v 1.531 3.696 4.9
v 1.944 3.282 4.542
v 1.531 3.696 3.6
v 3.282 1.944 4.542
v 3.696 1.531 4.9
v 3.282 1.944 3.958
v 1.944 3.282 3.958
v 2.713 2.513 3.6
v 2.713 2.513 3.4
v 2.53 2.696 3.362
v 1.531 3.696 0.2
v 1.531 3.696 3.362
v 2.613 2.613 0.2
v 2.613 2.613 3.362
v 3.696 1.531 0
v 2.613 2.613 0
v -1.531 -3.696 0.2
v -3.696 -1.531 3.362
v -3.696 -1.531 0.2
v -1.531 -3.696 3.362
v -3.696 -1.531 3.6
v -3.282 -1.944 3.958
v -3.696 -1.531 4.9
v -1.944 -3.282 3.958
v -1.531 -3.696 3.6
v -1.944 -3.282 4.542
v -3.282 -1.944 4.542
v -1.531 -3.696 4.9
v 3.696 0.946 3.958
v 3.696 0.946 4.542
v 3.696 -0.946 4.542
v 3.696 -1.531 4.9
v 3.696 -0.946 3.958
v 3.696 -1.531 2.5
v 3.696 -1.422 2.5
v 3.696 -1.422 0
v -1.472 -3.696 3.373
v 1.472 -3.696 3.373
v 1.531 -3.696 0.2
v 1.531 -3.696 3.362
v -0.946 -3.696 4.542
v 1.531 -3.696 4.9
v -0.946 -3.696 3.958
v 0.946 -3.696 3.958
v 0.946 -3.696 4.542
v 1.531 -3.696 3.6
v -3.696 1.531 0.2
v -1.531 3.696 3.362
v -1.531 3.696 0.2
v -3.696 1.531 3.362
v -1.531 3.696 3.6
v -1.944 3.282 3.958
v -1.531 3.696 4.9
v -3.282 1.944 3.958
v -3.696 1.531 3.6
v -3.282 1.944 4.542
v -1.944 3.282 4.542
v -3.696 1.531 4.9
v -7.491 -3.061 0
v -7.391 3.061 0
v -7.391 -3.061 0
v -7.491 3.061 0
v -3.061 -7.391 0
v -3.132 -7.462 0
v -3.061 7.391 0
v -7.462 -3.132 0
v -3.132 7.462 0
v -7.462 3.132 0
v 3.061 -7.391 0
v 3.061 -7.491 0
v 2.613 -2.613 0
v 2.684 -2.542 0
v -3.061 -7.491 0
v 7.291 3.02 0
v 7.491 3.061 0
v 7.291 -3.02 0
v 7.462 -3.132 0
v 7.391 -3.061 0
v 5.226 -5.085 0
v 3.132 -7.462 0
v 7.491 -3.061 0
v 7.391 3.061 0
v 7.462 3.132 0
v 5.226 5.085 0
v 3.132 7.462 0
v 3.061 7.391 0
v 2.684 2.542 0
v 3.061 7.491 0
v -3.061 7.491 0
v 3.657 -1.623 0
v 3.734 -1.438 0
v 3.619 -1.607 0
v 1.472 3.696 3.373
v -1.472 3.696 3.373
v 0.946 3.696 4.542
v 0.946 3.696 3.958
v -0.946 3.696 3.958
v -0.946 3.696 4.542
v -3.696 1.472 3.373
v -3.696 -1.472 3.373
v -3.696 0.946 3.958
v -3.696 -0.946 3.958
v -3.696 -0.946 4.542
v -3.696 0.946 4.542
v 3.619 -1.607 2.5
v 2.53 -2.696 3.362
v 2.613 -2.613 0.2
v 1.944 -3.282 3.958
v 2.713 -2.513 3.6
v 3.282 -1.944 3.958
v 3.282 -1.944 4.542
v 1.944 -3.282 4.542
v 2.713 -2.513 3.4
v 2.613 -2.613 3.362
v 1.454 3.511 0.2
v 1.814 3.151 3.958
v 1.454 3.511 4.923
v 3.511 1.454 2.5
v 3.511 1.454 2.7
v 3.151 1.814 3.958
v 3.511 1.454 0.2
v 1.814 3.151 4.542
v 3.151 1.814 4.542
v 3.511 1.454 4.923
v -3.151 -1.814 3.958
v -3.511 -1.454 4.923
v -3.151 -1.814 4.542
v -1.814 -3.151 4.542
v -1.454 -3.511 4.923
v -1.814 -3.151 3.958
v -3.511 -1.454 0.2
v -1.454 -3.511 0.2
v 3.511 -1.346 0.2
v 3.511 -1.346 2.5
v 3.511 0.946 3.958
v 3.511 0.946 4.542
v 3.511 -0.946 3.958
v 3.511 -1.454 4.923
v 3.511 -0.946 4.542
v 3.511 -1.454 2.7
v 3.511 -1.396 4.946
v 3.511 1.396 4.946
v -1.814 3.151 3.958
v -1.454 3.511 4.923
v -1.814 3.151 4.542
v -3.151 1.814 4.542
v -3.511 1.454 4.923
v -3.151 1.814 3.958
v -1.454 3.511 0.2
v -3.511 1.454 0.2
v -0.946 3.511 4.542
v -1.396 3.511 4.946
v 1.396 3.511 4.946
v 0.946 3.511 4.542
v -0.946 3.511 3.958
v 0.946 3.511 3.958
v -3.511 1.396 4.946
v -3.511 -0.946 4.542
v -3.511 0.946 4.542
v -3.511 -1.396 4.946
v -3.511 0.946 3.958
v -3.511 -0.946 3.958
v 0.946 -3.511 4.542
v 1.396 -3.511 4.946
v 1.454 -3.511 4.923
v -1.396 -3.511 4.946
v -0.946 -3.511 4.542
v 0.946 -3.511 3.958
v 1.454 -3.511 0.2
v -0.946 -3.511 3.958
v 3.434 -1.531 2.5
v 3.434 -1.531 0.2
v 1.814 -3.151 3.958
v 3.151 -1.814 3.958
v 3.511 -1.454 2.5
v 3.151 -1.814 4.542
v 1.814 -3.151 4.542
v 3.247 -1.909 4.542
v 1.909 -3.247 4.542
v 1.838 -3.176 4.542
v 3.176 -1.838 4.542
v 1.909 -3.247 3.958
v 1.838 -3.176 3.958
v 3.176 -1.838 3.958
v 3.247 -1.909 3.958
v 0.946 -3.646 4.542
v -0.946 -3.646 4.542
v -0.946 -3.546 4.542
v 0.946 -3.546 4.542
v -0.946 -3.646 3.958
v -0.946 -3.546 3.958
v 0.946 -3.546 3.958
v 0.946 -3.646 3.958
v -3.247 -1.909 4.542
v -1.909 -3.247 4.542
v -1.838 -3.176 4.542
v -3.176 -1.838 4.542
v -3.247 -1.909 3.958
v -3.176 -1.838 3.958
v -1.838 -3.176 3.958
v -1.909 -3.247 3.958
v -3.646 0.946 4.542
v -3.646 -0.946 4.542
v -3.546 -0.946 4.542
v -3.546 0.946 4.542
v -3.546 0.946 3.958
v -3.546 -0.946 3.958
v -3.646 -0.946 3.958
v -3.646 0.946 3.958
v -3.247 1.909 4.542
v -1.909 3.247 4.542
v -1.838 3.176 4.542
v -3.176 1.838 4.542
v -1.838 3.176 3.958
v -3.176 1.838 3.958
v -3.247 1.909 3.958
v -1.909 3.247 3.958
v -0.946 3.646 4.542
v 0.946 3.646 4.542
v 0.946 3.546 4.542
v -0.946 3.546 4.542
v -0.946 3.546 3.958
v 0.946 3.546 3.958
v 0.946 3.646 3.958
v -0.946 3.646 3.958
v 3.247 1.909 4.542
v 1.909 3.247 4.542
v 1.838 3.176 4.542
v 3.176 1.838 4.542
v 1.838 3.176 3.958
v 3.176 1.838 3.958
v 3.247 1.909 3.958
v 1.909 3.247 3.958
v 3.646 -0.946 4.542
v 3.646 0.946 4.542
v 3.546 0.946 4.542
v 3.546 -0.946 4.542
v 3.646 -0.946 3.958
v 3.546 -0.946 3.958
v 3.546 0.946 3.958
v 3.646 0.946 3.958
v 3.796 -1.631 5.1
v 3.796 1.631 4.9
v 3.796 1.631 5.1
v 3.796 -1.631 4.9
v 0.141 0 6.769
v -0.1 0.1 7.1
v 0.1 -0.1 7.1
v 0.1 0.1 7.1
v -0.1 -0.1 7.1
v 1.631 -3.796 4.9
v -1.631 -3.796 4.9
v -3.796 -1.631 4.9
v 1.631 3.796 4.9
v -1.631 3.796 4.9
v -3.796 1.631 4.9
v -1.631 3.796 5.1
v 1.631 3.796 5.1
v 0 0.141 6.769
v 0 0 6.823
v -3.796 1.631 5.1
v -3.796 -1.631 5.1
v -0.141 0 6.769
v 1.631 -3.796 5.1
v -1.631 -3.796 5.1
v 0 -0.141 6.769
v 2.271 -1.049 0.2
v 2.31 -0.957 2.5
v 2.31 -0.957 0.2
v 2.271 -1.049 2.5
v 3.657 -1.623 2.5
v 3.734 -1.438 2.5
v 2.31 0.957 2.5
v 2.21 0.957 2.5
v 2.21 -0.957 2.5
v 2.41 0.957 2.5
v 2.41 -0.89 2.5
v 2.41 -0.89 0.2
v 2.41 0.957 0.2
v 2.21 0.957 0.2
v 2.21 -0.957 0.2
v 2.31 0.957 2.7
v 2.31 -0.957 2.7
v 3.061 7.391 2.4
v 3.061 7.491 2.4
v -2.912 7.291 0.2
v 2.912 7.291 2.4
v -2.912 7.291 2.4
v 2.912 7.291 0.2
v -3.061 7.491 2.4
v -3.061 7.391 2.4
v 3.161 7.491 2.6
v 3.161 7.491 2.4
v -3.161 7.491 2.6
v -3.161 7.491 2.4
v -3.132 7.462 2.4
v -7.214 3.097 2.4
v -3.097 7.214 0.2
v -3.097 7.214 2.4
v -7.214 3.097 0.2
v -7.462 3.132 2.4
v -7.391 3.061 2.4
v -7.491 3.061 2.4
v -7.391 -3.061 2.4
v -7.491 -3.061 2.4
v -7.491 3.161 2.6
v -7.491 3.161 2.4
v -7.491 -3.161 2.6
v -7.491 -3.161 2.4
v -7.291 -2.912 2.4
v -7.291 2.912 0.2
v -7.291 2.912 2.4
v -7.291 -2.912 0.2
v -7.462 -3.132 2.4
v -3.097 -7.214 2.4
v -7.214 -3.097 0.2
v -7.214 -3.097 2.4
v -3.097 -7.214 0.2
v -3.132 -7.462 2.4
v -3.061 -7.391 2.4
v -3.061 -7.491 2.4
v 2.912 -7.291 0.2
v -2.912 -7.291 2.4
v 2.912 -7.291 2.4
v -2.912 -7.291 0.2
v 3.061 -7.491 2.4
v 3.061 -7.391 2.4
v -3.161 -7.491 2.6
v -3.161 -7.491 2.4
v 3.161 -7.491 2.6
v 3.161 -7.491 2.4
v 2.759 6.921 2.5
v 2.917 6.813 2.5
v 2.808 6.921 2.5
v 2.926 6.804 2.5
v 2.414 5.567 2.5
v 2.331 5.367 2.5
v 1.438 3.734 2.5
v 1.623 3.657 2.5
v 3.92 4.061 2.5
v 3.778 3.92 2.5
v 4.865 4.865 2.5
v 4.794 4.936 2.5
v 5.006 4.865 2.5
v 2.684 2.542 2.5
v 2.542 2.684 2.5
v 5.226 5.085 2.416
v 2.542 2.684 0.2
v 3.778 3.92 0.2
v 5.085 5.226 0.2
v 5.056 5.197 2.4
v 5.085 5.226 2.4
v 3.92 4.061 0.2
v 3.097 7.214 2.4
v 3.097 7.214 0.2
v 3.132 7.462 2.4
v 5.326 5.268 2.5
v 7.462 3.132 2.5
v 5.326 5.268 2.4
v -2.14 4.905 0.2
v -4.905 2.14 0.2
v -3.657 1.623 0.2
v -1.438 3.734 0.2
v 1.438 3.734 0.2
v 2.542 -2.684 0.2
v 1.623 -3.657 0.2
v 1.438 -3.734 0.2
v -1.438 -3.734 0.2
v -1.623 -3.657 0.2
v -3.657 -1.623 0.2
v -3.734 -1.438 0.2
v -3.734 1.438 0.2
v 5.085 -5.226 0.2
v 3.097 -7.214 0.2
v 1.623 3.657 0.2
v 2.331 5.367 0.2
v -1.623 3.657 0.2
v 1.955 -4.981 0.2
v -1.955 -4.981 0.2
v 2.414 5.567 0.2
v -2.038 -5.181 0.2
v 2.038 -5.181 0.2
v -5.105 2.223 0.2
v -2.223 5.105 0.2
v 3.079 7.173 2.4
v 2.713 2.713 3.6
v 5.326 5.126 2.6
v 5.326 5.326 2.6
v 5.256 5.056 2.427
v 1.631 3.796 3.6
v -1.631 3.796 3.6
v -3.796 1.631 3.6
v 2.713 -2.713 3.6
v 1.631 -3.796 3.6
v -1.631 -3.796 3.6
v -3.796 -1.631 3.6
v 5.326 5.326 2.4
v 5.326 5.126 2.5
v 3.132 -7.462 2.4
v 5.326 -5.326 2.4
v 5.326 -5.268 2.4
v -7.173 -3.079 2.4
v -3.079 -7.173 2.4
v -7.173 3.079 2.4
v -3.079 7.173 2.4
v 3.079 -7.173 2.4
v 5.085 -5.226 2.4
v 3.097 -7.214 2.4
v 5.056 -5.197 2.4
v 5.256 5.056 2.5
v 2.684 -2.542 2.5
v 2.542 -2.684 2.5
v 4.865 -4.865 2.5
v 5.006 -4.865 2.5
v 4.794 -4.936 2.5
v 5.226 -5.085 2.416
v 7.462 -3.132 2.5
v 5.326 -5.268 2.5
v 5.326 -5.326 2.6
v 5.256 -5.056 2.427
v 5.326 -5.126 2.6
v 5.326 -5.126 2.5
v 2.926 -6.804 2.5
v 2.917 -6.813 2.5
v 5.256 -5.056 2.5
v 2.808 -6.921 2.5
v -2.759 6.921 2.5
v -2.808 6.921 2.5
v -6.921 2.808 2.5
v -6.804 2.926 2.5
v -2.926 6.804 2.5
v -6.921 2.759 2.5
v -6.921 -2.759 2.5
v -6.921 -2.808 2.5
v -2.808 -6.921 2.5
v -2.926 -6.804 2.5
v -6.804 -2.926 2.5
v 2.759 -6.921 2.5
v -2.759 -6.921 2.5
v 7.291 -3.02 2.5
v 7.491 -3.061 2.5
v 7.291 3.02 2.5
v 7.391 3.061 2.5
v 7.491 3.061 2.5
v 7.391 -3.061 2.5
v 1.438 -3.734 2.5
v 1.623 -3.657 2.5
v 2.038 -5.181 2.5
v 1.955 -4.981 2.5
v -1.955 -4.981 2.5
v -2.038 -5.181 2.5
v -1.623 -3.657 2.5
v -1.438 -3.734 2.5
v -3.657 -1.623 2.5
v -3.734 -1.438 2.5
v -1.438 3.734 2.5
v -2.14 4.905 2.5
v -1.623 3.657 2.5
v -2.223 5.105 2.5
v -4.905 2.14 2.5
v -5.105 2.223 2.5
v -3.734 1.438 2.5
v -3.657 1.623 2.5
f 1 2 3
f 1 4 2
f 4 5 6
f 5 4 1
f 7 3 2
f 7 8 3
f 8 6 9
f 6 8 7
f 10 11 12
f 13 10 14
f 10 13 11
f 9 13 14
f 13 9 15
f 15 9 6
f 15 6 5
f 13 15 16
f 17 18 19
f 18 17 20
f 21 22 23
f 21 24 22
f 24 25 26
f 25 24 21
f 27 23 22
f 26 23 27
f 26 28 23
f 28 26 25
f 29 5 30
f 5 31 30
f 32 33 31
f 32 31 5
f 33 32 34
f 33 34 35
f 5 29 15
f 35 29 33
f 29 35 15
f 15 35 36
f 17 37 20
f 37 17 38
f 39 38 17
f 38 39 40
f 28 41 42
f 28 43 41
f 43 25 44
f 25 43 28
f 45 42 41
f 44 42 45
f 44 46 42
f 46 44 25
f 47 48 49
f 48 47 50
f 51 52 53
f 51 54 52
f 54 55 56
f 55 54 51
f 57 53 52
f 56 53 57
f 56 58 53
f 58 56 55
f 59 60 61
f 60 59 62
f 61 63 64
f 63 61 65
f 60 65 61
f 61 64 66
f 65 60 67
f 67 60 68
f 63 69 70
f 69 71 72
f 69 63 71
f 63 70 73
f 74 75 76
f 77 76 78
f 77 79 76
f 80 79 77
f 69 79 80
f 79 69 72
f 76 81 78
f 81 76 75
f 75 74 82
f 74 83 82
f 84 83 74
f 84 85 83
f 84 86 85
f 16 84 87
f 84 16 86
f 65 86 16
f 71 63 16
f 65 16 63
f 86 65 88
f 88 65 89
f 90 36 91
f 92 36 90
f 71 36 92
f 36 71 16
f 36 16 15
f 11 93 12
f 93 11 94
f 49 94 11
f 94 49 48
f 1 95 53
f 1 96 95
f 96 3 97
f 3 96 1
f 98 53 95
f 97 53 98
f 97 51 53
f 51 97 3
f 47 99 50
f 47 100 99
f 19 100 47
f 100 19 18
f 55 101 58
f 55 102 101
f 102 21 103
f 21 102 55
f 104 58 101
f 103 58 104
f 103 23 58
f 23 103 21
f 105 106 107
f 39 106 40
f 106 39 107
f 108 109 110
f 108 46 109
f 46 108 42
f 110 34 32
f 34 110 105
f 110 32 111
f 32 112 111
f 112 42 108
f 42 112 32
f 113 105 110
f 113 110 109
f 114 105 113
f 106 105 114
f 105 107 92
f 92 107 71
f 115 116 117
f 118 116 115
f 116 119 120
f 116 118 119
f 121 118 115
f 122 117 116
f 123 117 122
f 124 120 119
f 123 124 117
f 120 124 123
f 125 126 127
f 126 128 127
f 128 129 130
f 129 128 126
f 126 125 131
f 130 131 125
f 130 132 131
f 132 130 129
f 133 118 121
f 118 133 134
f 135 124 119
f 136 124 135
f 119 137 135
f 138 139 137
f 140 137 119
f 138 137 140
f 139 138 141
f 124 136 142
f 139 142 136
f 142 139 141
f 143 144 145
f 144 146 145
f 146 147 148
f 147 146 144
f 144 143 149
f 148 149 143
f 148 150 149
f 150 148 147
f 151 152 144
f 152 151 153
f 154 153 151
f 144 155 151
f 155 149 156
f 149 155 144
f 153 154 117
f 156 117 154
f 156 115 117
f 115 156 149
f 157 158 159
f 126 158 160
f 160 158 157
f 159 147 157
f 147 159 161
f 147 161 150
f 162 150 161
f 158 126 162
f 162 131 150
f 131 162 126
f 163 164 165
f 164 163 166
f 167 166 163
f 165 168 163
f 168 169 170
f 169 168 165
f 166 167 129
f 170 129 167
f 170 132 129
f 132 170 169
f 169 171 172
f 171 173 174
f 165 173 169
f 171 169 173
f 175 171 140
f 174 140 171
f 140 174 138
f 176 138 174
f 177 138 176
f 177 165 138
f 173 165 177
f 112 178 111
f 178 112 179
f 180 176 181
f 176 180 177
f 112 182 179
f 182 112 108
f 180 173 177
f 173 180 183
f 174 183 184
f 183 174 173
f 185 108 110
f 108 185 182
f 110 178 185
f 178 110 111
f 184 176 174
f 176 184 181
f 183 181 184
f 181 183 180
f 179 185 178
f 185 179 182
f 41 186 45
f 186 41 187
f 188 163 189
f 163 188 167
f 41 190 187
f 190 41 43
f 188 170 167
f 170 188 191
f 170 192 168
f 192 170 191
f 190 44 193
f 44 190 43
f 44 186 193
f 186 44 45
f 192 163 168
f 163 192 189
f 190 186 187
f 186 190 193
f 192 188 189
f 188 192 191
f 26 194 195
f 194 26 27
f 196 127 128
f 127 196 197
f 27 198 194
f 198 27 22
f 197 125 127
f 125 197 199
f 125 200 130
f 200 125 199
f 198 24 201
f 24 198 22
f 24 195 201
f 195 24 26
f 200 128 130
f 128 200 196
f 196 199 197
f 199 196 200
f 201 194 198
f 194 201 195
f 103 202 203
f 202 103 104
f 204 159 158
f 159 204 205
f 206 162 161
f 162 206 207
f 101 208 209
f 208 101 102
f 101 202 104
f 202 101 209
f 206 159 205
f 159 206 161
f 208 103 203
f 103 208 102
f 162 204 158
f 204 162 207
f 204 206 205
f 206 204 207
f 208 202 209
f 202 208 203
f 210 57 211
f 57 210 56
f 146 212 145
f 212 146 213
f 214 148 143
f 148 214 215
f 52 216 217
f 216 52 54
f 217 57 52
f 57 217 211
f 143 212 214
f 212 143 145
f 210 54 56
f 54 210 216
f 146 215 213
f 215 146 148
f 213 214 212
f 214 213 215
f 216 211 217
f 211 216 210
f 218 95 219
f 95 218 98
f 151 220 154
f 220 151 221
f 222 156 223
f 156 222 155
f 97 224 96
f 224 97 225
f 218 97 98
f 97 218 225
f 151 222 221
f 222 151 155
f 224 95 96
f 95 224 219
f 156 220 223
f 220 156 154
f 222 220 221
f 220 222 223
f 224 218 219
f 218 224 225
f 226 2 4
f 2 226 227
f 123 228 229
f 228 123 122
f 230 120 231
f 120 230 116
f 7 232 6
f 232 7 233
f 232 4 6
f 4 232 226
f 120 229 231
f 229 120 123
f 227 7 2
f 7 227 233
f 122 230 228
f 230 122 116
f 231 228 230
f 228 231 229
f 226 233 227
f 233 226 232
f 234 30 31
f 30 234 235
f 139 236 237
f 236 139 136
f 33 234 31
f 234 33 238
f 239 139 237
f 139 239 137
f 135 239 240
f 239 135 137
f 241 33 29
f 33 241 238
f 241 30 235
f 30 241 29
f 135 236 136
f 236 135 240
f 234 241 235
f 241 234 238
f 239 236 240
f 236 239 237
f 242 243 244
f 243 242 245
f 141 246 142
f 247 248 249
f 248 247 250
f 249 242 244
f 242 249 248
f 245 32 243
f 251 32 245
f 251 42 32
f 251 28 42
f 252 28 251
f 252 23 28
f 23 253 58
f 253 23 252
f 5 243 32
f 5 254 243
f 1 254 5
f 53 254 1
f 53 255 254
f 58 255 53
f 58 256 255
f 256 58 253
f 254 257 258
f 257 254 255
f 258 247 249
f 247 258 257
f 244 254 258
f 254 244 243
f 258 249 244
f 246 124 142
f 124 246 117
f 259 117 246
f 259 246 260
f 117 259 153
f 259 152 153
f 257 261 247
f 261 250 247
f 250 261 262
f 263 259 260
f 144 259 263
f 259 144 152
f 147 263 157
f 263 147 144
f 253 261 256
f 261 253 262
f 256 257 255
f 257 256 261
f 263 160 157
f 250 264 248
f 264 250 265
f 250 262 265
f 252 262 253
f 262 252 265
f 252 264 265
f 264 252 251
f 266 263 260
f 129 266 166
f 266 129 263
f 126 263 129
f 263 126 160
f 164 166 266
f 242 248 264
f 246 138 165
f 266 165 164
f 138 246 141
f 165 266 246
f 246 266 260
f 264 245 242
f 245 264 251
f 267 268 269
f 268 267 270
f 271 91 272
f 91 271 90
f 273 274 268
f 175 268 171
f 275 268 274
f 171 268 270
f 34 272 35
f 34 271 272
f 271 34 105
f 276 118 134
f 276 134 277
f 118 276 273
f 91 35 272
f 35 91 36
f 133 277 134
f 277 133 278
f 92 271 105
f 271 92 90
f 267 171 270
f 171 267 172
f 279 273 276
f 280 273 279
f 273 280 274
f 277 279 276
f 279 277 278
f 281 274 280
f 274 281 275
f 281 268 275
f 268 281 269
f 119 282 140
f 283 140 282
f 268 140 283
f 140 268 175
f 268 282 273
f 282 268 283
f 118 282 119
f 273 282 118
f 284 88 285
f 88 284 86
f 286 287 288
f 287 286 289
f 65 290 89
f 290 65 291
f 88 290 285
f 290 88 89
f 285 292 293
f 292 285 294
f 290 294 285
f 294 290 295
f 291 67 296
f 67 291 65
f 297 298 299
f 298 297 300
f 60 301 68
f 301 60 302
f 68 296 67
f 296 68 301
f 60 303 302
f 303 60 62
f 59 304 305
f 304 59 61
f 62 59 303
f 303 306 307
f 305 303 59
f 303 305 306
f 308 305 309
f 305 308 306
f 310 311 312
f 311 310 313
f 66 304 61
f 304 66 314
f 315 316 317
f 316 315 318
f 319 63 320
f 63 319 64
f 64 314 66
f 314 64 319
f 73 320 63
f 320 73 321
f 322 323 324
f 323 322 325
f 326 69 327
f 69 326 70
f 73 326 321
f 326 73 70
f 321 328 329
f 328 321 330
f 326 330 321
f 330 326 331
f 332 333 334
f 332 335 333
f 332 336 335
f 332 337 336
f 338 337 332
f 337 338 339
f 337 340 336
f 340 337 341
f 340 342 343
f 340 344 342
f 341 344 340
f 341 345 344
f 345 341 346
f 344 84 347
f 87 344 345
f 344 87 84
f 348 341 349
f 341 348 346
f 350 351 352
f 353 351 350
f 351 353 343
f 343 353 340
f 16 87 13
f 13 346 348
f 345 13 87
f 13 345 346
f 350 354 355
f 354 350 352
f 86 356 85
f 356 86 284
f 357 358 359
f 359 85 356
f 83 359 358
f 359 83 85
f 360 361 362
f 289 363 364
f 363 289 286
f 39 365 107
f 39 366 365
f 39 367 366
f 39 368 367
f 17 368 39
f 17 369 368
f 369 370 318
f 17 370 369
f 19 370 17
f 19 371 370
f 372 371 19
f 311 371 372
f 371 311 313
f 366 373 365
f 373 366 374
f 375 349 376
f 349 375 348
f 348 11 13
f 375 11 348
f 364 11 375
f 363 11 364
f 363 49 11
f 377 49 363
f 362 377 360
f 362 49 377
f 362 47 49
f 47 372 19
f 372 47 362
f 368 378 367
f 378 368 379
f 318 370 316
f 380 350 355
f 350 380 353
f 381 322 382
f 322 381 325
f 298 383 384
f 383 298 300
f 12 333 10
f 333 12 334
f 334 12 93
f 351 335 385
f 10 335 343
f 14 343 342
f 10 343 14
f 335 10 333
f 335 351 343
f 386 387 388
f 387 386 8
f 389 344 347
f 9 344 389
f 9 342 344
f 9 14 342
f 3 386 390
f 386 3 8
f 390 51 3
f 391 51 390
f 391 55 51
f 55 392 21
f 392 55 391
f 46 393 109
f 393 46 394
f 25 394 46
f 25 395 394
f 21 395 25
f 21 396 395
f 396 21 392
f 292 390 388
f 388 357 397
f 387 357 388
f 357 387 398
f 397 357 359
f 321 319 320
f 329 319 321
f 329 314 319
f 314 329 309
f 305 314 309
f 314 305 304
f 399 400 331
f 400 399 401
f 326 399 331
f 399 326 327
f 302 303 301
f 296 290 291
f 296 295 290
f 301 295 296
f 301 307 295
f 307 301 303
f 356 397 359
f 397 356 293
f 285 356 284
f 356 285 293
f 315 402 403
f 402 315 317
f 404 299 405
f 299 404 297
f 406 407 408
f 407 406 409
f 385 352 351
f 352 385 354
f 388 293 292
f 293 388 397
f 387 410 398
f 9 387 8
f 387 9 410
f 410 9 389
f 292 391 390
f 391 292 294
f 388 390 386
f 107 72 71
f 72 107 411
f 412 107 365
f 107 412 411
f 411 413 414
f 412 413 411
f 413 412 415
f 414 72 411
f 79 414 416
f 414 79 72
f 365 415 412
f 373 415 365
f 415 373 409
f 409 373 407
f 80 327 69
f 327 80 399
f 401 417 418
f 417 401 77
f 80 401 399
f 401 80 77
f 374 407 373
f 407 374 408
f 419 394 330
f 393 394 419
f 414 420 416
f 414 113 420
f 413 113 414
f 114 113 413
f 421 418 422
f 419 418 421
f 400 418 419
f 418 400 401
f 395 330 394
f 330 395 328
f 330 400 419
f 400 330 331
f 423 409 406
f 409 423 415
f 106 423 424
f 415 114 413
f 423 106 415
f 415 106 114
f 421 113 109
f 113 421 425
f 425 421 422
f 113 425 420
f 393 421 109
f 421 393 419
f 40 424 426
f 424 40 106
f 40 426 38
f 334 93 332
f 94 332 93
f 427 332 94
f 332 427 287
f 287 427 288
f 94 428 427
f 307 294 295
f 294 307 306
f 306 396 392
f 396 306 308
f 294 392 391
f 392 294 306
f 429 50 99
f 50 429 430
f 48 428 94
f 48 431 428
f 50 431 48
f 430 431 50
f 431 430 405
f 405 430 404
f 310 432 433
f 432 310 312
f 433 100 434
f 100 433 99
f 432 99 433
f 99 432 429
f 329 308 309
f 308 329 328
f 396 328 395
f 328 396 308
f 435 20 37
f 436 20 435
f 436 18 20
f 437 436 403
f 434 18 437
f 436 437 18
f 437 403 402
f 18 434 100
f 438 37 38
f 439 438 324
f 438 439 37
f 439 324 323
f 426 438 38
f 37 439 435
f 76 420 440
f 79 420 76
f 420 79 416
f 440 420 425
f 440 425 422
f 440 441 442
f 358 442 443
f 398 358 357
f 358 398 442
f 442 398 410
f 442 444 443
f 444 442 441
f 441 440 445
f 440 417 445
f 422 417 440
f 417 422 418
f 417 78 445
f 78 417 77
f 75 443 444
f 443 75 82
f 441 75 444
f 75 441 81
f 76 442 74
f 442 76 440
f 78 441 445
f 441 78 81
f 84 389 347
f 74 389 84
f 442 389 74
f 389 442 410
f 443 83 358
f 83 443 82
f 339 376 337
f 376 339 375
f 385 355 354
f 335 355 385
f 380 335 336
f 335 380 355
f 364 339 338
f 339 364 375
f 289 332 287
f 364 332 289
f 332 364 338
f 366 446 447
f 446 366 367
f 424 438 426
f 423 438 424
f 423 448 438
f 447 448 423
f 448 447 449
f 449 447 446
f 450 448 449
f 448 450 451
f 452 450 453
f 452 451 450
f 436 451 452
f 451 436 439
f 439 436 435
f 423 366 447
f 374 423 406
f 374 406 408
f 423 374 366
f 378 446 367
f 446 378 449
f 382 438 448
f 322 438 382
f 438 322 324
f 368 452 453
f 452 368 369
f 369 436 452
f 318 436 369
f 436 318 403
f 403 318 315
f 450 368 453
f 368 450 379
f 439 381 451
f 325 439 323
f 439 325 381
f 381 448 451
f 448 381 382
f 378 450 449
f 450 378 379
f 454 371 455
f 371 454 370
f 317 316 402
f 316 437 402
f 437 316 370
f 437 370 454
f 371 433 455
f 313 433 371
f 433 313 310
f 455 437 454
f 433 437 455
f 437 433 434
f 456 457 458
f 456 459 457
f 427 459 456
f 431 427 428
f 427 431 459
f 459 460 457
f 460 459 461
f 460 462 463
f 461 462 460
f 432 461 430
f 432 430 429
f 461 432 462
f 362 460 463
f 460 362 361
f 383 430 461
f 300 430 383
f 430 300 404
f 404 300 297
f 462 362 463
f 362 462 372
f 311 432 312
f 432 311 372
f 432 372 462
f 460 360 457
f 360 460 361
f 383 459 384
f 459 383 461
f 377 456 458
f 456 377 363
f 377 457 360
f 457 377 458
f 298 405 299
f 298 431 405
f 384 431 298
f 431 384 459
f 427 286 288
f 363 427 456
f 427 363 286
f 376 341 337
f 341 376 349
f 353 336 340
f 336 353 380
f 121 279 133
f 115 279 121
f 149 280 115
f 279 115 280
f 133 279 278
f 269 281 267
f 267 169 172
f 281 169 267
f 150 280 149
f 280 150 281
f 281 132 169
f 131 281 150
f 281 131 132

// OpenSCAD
// file: element.scad
// calculate the coordinates for the corners
function point(i, r, corners) =
   let (vz = 360/corners/2)
   let (angle=i*(360/corners) - vz)
   [ r*cos(angle)
   , r*sin(angle)
   ];

function inbetween(p1, p2, procent) =
    let (x_diff = p2[0] - p1[0])
    let (y_diff = p2[1] - p1[1])
    [ p1[0] + x_diff*procent/100
    , p1[1] + y_diff*procent/100
    ];

// create a wall
module wall(p1, p2, h, thickness) {
    let (x_diff = p2[0] - p1[0])
    let (y_diff = p2[1] - p1[1])
    let (len = sqrt(pow(x_diff, 2) +
                    pow(y_diff, 2)))
    linear_extrude(height = h)
    translate(p1)
    rotate(atan2(y_diff, x_diff))
    translate([0, -thickness/2])
    square([len, thickness]);
}

module octagon(r, h, corners) {
    coords=[for (i = [0:corners-1]) point(i, r, corners)];
    linear_extrude(height = h)
    polygon(coords);
}

module octawalls(r, h, wt, corners) {
    difference () {
        octagon(r, h, corners);
        translate([0, 0, -wt])
        octagon(r - wt, h + 2*wt, corners);
    }
}

module window(p1, p2, pos, height, sizex, sizey, wt) {
    assert(0 < pos && pos < 100);
    x_diff = p2[0] - p1[0];
    y_diff = p2[1] - p1[1];
    len = sqrt(pow(x_diff, 2) +
               pow(y_diff, 2));
    difference () {
        children();
        // create the hole for the window
        translate([0,0,height])
        translate(p1 + pos*[x_diff, y_diff]/100)
        rotate(atan2(y_diff, x_diff) + 90, [0,0,1])
        cube([2*wt, sizex, sizey], center = true);
    }
    // add the glass to the window
    color("gray")
    translate([0,0,height])
    translate(p1 + pos*[x_diff, y_diff]/100)
    rotate(atan2(y_diff, x_diff) + 90, [0,0,1])
    translate([wt/2, 0, 0])
    cube([wt/2, sizex, sizey], center = true);
}
// main file
use <element.scad>

// configure the rendering
show_floor = true;
show_roof = true;

// constants
gr = 1.61803; // golden ration

// configure the house
wt = 0.2;  // wall thickness
corners = 8; // number of corners in main room
mrr = 4; // main room radius
mrh = 5; // main room height
mrrh = 2; // main room roof height
hr = mrr + 4; // house radius
orh = 2.5; // outer room height
orrh = 1; // outer room roof height

// calculate approximate house size
function house_size() =
   let(v=360/corners/2)
   let(a=hr*sin(v))
   let(b=hr*cos(v))
   (corners-2)*a*b;
echo("area of house = ", house_size());

// calculate the coordinates for the corners
function p(i, r) = point(i, r, corners);

// create a wall of thickness wt
module w(p1, p2, h) {
    wall(p1, p2, h, wt);
}

module o(r, h) {
    octagon(r, h, corners);
}

module ow(r, h) {
    octawalls(r, h, wt, corners);
}

module wi(p1, p2, pos, height, sizex, sizey) {
    window(p1, p2, pos, height, sizex, sizey, wt)
    children();
}

module hall(size, h) {
    r = mrr - size;
    w(p(0, mrr), p(0, r), h);
    w(p(0, r), p(1, r), h);
    translate([0, 0, h])
    linear_extrude(height = wt)
    polygon([p(0,mrr), p(0, r), p(1, r), p(1, mrr)]);
}

// floor of main room
if (show_floor) {
    o(mrr, wt);
}
// walls of main room
module main_room() {
    v = 360/corners/2;
    dist = mrr*cos(v);
    wallw = 2*mrr*sin(v);
    ww = wallw / gr; // window width
    wh = ww / gr / 2; // window height
    h = mrh*0.85;
    wi(p(0, mrr), p(1, mrr), 50, h, ww, wh)
    wi(p(1, mrr), p(2, mrr), 50, h, ww, wh)
    wi(p(2, mrr), p(3, mrr), 50, h, ww, wh)
    wi(p(3, mrr), p(4, mrr), 50, h, ww, wh)
    wi(p(4, mrr), p(5, mrr), 50, h, ww, wh)
    wi(p(5, mrr), p(6, mrr), 50, h, ww, wh)
    wi(p(6, mrr), p(7, mrr), 50, h, ww, wh)
    wi(p(7, mrr), p(0, mrr), 50, h, ww, wh)
    ow(mrr, mrh);
}
main_room();

// roof of main room
if (show_roof) {
    for (i = [0:corners-1])
        translate([0,0,mrh])
        hull()
        for(p=[p(i, mrr), p(i+1, mrr), [0,0,mrrh]])
            translate(p) cube(wt, true);
}

// hall
hall(1.5, orh);

// outer walls
for (i = [2:corners-2])
    w(p(i, hr), p(i+1, hr), orh);

// the non-standard outer wall on the right
module non_standard_right() {
    // calculate corners of room
    p1 = inbetween(p(1,mrr), p(2, mrr), 50);
    p2 = inbetween(p(1,hr), p(2, hr), 50);
    p3 = p(2, hr);
    p4 = p(2, mrr);
    // walls
    w(p1, p2, orh);
    w(p2, p3, orh);
    // floor
    if (show_floor) {
        linear_extrude(height = wt)
        polygon([p1, p2, p3, p4]);
    }
    // roof
    if (show_roof) {
        translate([0,0,orh])
        hull()
        for(p=[ [p1[0], p1[1], 0] + [0,0,orrh]
              , p2, p3
              , [p4[0], p4[1], 0] + [0,0,orrh]])
            translate(p) cube(wt, true);
    }
}
non_standard_right();

// the non-standard outer wall on the left
module non_standard_left() {
    // calculate corners of room
    p1 = inbetween(p(corners-1,mrr), p(0, mrr), 50);
    p2 = inbetween(p(corners-1,hr), p(0, hr), 50);
    p3 = p(corners-1, hr);
    p4 = p(corners-1, mrr);
    // walls
    w(p1, p2, orh);
    w(p2, p3, orh);
    // floor
    if (show_floor) {
        linear_extrude(height = wt)
        polygon([p1, p2, p3, p4]);
    }
    // roof
    if (show_roof) {
        translate([0,0,orh])
        hull()
        for(p=[ [p1[0], p1[1], 0] + [0,0,orrh]
              , p2, p3
              , [p4[0], p4[1], 0] + [0,0,orrh]])
            translate(p) cube(wt, true);
    }
}
non_standard_left();

// floor on outer rooms
if (show_floor) {
    for (i = [2:corners-2])
        linear_extrude(height = wt)
        polygon([p(i, mrr), p(i, hr), p(i+1, hr), p(i+1,mrr)]);
}

// roof on outer rooms
if (show_roof) {
    for (i = [2:corners-2])
        let (p1 = p(i, mrr))
        let (p2 = p(i+1, mrr))
        translate([0,0,orh])
        hull()
        for(p=[ [p1[0], p1[1], 0] + [0,0,orrh]
              , p(i, hr)
              , p(i+1, hr)
              , [p2[0], p2[1], 0] + [0,0,orrh]
              ])
            translate(p) cube(wt, true);

}

// winter garden
module winter_garden() {
    // calculate the corners
    p1 = inbetween(p(corners-1,hr), p(0, hr), 50);
    p2 = p(0, hr);
    p3 = p(1, hr);
    p4 = inbetween(p(1,hr), p(2, hr), 50);
    // walls
    color("gray") w(p1, p2, orh);
    color("gray") w(p2, p3, orh);
    color("gray") w(p3, p4, orh);
}
winter_garden();

// inner walls
module inner_walls() {
    if (corners == 8) {
        w(p(2, mrr), p(2, hr), orh);
        w(p(7, mrr), p(7, hr), orh);
        w(p(6, mrr), p(6, hr), orh);
        w(p(7, mrr+1.5), p(6, mrr+1.5), orh);
        w(p(5, mrr), p(5, hr), orh);
        w(p(4, mrr), p(4, hr), orh);
        w(p(3, mrr+1.5), p(4, mrr+1.5), orh);
        w(p(3, mrr), p(3, hr), orh);
        w( inbetween(p(1,mrr+(hr-mrr)/2), p(2, mrr+(hr-mrr)/2), 50)
        , p(2, mrr+(hr-mrr)/2), orh);
    }
}
inner_walls();
